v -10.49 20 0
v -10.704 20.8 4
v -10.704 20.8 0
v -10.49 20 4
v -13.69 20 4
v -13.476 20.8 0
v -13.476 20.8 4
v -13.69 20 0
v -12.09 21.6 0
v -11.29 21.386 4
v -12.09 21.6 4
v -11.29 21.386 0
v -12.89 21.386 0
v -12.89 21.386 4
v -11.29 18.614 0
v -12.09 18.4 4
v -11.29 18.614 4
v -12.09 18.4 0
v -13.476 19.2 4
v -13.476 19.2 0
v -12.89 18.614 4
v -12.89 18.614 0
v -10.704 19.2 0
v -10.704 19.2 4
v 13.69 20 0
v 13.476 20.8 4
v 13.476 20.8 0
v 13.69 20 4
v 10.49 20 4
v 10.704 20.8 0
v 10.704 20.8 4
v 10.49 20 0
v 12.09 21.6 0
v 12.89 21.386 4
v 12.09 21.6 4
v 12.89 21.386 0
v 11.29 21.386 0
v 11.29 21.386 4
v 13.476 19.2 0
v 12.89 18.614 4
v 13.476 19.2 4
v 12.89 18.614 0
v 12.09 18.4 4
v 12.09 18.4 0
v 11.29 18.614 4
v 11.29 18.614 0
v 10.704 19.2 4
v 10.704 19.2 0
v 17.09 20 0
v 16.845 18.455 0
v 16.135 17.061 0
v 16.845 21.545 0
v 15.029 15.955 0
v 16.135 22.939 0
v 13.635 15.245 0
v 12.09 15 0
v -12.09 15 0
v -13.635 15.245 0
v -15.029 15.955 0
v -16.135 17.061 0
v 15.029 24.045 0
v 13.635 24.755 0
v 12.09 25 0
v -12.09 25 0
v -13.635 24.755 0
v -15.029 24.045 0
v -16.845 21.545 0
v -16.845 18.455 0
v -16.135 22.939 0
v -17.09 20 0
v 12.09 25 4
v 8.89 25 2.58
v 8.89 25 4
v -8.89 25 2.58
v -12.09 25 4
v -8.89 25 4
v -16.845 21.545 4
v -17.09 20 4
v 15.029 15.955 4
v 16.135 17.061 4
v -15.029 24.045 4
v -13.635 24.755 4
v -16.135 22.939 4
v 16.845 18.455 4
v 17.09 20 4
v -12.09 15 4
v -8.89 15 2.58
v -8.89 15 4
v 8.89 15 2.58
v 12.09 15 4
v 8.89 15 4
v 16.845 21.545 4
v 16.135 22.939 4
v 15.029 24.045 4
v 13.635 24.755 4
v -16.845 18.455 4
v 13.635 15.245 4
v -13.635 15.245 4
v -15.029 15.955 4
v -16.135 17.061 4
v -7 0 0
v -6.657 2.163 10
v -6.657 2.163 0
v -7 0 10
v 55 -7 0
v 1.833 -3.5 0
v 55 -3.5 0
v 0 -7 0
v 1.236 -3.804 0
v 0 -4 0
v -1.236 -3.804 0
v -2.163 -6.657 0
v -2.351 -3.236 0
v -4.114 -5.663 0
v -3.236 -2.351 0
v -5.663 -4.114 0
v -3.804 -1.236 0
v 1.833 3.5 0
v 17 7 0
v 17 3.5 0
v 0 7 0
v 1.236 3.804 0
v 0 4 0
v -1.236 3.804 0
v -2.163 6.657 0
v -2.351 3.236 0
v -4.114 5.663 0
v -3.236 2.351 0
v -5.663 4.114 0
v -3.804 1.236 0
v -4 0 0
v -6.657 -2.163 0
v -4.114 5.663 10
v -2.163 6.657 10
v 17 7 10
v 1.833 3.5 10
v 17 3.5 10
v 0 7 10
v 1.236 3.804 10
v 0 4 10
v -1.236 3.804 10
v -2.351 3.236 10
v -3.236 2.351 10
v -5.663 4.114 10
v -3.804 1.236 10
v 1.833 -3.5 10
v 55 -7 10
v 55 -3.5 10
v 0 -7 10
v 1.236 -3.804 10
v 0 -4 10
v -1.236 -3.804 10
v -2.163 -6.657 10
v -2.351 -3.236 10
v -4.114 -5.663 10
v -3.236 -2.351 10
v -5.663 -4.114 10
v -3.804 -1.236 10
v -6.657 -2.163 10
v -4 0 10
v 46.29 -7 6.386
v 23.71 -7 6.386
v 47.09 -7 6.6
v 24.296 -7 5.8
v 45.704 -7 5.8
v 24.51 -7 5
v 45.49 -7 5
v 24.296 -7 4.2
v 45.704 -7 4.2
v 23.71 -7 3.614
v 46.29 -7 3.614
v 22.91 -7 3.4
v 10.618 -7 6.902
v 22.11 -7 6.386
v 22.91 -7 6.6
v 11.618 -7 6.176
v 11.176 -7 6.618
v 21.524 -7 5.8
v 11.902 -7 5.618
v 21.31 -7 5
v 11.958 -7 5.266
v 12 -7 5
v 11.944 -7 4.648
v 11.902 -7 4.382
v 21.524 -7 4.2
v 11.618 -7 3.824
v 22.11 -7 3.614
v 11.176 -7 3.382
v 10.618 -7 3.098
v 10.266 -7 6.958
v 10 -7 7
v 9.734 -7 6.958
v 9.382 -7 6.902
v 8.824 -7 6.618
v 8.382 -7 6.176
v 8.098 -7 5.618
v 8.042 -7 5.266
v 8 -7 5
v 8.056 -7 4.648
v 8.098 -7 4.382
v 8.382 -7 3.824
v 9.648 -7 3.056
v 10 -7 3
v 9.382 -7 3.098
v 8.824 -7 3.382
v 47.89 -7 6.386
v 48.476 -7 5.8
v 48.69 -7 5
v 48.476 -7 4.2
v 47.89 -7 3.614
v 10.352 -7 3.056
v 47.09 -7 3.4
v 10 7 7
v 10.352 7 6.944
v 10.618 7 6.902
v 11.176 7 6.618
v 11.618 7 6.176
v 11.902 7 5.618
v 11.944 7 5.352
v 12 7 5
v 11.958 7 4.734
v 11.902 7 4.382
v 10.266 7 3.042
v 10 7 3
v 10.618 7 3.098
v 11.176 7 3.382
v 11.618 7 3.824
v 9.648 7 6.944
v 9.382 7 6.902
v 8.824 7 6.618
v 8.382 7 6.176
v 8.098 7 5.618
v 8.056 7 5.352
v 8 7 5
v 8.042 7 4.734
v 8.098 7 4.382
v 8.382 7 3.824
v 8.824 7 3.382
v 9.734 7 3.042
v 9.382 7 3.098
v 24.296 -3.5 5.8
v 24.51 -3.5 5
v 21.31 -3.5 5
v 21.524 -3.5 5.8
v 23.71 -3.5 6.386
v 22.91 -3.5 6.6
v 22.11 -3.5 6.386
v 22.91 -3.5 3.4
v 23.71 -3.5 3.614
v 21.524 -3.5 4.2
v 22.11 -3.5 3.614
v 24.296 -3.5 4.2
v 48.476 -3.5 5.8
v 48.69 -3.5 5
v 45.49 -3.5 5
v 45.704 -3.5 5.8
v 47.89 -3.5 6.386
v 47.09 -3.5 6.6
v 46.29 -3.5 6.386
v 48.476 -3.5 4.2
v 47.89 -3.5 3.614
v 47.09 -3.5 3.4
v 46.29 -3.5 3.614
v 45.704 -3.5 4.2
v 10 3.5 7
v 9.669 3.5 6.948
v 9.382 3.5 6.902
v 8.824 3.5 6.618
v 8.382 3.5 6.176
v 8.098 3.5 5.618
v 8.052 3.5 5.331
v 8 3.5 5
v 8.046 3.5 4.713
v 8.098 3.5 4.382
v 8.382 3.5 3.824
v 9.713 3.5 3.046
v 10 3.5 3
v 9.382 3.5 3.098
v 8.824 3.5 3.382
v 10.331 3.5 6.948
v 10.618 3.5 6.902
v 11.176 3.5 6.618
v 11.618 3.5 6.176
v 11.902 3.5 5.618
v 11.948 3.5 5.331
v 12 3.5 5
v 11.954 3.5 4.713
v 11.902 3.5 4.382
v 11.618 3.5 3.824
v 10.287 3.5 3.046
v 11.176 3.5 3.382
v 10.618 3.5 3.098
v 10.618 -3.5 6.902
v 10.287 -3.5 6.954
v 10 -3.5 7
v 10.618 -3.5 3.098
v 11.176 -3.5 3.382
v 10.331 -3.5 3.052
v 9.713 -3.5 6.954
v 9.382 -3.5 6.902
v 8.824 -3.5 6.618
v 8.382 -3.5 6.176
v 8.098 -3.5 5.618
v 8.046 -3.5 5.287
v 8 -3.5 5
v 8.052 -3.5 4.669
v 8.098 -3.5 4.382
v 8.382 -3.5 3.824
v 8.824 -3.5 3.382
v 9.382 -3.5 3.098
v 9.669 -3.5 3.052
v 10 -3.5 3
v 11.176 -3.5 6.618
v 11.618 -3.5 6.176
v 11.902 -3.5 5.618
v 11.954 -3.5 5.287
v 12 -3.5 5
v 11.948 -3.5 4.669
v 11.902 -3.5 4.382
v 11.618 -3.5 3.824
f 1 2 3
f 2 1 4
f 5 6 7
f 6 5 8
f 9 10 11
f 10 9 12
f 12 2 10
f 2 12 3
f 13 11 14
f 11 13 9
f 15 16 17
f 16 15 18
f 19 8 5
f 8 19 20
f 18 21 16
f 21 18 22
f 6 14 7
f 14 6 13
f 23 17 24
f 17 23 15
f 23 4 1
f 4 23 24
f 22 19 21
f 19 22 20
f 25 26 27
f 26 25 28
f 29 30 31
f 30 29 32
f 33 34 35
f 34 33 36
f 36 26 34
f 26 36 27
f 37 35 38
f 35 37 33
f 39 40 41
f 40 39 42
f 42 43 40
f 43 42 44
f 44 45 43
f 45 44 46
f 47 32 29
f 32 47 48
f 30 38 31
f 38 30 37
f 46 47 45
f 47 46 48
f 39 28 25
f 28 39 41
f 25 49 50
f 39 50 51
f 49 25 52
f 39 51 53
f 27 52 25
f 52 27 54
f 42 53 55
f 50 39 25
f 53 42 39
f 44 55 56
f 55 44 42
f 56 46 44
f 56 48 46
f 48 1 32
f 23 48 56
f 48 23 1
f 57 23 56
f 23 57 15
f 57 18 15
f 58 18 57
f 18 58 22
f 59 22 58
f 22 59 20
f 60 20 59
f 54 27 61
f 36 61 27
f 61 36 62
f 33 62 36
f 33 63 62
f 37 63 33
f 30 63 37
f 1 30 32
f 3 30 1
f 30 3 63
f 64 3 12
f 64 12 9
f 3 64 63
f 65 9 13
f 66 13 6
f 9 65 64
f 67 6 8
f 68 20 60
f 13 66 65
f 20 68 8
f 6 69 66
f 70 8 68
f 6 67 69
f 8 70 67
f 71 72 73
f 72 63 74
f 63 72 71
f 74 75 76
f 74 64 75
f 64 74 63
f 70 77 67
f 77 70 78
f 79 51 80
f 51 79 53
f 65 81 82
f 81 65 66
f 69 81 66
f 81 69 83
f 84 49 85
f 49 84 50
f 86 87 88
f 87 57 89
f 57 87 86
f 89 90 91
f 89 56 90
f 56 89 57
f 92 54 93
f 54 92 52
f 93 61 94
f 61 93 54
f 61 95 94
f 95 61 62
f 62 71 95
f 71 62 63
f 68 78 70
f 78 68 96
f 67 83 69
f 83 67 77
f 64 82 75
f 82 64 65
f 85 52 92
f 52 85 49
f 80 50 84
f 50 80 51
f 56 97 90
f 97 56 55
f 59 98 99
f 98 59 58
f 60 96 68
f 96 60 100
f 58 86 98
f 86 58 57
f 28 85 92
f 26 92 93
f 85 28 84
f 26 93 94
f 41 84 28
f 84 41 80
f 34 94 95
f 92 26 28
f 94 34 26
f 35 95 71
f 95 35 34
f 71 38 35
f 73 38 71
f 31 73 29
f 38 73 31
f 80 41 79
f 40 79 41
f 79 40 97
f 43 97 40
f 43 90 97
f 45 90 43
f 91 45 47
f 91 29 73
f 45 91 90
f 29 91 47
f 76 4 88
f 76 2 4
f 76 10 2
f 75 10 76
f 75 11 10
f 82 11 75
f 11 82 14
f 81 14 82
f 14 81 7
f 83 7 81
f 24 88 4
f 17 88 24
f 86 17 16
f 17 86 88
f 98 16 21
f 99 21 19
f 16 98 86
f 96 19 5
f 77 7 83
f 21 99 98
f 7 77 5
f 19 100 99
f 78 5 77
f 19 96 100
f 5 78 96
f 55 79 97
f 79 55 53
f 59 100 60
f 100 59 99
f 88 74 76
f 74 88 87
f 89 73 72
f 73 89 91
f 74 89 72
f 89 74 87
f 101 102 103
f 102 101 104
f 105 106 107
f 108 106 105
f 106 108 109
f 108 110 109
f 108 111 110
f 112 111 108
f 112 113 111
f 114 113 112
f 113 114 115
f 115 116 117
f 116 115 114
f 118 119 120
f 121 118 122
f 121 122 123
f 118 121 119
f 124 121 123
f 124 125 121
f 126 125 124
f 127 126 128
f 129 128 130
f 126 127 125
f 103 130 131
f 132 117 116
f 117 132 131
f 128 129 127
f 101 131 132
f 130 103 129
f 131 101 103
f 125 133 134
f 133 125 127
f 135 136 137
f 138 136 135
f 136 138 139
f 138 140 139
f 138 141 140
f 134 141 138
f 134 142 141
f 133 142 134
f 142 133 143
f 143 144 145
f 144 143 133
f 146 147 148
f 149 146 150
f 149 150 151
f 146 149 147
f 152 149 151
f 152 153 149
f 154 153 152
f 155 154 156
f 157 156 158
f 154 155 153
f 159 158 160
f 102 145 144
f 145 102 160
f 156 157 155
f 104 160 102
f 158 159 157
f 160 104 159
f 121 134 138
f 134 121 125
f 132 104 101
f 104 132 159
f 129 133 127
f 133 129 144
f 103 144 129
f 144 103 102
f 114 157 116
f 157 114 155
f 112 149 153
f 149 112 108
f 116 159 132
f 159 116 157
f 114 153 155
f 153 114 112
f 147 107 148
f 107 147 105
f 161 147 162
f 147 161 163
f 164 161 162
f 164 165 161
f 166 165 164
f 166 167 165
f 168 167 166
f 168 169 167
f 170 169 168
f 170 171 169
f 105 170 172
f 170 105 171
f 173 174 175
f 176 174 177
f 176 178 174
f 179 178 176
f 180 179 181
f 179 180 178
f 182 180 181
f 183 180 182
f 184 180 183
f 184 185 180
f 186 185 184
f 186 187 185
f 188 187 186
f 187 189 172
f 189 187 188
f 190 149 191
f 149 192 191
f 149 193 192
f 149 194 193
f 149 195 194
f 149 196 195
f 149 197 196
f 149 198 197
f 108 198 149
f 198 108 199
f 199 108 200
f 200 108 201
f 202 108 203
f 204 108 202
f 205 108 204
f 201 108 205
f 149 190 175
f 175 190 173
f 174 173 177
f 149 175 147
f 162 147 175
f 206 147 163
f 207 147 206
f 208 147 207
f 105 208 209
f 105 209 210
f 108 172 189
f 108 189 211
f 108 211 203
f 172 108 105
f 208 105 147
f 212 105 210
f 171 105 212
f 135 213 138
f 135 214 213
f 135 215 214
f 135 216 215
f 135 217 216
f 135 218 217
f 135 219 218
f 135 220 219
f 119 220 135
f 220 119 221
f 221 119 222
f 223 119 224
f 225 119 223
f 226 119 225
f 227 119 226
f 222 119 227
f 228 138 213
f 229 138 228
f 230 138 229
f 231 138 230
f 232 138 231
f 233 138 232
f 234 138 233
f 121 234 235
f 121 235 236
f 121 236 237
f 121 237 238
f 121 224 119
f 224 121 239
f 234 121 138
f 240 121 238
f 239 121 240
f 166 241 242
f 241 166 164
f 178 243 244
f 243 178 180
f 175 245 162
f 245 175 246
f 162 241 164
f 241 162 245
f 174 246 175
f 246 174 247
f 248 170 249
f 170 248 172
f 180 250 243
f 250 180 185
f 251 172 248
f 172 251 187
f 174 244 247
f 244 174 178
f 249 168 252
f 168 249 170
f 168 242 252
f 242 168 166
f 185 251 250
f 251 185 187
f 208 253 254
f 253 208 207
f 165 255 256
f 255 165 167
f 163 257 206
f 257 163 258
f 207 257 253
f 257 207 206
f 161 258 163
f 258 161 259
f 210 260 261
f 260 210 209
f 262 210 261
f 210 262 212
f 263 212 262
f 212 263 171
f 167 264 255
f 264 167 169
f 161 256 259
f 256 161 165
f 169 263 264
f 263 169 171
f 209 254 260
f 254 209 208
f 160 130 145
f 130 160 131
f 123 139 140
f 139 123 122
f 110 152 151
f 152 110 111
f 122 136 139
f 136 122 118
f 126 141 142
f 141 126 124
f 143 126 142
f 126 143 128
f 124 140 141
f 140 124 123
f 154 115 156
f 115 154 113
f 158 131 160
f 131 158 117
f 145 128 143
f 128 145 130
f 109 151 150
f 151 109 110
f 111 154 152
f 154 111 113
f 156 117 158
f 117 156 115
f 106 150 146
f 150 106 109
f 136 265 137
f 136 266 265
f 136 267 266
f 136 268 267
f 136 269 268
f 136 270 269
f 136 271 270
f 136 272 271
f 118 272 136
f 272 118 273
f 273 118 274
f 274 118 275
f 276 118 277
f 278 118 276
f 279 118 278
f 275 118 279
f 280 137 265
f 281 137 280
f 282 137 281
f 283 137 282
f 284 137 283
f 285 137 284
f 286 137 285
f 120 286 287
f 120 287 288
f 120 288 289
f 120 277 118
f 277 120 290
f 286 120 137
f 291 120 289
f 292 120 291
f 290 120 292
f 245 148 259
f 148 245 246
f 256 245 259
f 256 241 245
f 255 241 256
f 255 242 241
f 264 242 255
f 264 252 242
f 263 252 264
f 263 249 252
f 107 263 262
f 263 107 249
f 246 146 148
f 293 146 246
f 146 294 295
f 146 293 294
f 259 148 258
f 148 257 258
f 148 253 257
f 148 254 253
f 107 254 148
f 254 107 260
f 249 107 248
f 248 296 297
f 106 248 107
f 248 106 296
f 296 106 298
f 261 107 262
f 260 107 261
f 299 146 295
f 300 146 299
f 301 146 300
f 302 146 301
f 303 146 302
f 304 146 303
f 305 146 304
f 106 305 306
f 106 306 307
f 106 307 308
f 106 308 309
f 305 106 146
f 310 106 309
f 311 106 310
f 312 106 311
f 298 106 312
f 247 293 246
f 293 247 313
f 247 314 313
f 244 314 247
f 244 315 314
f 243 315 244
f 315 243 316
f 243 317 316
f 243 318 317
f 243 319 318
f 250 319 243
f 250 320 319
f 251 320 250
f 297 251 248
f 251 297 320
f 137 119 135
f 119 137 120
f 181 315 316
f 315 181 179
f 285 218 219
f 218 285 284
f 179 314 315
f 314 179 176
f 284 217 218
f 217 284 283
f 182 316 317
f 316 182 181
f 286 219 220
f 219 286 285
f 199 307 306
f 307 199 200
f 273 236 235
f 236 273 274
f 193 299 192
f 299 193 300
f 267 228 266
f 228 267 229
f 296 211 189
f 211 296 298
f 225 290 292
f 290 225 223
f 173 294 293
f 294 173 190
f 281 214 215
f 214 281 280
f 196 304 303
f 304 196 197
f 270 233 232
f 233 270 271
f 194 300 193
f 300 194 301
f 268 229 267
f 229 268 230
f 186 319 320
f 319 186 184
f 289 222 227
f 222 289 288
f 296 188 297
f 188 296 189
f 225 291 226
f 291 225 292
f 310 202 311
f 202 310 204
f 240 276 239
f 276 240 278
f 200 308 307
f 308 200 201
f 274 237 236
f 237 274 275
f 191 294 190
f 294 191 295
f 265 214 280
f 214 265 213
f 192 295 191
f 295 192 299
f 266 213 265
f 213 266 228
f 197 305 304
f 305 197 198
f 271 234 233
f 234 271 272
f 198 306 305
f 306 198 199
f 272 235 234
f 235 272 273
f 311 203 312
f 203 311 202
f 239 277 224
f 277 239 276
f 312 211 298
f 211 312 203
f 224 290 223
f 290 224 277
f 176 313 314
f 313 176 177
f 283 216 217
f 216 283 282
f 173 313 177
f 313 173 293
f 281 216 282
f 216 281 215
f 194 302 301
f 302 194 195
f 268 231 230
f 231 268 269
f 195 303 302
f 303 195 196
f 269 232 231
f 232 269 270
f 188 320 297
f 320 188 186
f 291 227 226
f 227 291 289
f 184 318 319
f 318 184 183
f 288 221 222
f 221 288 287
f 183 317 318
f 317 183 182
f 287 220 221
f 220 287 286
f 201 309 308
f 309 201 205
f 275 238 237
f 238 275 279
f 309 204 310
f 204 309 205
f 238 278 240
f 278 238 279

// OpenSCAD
$fn = 20;
th=10;

module clamp_high(width){
	difference(){
		hull()
			for(i=[-1,1])
				translate([(width*1.27*0.5+3.2)*i,0,0])
					cylinder(r=5,h=4);
		for(i=[-1,1])
			translate([(width*1.27*0.5+3.2)*i,0,0])
				cylinder($fn=12,r=3.2/2,h=20,center=true);
		translate([0,0,4])
			cube([width*1.27,20,2*1.27+0.3],center=true);
	}
}

module clamp_low(width,height=4){
	difference(){
		hull()
			for(i=[-1,1])
				translate([(width*1.27*0.5+3.2)*i,0,0])
					cylinder(r=5,h=height);
		for(i=[-1,1])
			translate([(width*1.27*0.5+3.2)*i,0,0]) {
				cylinder($fn=12,r=3.2/2,h=20,center=true);
				translate([0,0,2])
					cylinder($fn=6,r=5/2,h=10*2.4);
			}
	}
}

module clamp(width){
	clamp_high(width);
	translate([0,15,0]) clamp_low(width);
}

translate([0,20,0]) clamp_high(14);

difference() {
	union() {
		cylinder(h=th, d=14);
		translate([0,-14/2,0]) cube([55, 14, th]);
	}
	
	cylinder(h=100, d=8, center=true);
	translate([-1,-7/2,-50]) cube([100, 7, 100]);
	translate([17,0,-50]) cube([100, 100, 100]);
	translate([10,0,th/2]) rotate([90, 0, 0]) cylinder(h=100, d=4.0, center=true);
	
	translate([35,0,th/2]) rotate([90,0,0])
		for(i=[-1,1])
			translate([(14*1.27*0.5+3.2)*i,0,0])
				cylinder($fn=12,r=3.2/2,h=20,center=true);
}
